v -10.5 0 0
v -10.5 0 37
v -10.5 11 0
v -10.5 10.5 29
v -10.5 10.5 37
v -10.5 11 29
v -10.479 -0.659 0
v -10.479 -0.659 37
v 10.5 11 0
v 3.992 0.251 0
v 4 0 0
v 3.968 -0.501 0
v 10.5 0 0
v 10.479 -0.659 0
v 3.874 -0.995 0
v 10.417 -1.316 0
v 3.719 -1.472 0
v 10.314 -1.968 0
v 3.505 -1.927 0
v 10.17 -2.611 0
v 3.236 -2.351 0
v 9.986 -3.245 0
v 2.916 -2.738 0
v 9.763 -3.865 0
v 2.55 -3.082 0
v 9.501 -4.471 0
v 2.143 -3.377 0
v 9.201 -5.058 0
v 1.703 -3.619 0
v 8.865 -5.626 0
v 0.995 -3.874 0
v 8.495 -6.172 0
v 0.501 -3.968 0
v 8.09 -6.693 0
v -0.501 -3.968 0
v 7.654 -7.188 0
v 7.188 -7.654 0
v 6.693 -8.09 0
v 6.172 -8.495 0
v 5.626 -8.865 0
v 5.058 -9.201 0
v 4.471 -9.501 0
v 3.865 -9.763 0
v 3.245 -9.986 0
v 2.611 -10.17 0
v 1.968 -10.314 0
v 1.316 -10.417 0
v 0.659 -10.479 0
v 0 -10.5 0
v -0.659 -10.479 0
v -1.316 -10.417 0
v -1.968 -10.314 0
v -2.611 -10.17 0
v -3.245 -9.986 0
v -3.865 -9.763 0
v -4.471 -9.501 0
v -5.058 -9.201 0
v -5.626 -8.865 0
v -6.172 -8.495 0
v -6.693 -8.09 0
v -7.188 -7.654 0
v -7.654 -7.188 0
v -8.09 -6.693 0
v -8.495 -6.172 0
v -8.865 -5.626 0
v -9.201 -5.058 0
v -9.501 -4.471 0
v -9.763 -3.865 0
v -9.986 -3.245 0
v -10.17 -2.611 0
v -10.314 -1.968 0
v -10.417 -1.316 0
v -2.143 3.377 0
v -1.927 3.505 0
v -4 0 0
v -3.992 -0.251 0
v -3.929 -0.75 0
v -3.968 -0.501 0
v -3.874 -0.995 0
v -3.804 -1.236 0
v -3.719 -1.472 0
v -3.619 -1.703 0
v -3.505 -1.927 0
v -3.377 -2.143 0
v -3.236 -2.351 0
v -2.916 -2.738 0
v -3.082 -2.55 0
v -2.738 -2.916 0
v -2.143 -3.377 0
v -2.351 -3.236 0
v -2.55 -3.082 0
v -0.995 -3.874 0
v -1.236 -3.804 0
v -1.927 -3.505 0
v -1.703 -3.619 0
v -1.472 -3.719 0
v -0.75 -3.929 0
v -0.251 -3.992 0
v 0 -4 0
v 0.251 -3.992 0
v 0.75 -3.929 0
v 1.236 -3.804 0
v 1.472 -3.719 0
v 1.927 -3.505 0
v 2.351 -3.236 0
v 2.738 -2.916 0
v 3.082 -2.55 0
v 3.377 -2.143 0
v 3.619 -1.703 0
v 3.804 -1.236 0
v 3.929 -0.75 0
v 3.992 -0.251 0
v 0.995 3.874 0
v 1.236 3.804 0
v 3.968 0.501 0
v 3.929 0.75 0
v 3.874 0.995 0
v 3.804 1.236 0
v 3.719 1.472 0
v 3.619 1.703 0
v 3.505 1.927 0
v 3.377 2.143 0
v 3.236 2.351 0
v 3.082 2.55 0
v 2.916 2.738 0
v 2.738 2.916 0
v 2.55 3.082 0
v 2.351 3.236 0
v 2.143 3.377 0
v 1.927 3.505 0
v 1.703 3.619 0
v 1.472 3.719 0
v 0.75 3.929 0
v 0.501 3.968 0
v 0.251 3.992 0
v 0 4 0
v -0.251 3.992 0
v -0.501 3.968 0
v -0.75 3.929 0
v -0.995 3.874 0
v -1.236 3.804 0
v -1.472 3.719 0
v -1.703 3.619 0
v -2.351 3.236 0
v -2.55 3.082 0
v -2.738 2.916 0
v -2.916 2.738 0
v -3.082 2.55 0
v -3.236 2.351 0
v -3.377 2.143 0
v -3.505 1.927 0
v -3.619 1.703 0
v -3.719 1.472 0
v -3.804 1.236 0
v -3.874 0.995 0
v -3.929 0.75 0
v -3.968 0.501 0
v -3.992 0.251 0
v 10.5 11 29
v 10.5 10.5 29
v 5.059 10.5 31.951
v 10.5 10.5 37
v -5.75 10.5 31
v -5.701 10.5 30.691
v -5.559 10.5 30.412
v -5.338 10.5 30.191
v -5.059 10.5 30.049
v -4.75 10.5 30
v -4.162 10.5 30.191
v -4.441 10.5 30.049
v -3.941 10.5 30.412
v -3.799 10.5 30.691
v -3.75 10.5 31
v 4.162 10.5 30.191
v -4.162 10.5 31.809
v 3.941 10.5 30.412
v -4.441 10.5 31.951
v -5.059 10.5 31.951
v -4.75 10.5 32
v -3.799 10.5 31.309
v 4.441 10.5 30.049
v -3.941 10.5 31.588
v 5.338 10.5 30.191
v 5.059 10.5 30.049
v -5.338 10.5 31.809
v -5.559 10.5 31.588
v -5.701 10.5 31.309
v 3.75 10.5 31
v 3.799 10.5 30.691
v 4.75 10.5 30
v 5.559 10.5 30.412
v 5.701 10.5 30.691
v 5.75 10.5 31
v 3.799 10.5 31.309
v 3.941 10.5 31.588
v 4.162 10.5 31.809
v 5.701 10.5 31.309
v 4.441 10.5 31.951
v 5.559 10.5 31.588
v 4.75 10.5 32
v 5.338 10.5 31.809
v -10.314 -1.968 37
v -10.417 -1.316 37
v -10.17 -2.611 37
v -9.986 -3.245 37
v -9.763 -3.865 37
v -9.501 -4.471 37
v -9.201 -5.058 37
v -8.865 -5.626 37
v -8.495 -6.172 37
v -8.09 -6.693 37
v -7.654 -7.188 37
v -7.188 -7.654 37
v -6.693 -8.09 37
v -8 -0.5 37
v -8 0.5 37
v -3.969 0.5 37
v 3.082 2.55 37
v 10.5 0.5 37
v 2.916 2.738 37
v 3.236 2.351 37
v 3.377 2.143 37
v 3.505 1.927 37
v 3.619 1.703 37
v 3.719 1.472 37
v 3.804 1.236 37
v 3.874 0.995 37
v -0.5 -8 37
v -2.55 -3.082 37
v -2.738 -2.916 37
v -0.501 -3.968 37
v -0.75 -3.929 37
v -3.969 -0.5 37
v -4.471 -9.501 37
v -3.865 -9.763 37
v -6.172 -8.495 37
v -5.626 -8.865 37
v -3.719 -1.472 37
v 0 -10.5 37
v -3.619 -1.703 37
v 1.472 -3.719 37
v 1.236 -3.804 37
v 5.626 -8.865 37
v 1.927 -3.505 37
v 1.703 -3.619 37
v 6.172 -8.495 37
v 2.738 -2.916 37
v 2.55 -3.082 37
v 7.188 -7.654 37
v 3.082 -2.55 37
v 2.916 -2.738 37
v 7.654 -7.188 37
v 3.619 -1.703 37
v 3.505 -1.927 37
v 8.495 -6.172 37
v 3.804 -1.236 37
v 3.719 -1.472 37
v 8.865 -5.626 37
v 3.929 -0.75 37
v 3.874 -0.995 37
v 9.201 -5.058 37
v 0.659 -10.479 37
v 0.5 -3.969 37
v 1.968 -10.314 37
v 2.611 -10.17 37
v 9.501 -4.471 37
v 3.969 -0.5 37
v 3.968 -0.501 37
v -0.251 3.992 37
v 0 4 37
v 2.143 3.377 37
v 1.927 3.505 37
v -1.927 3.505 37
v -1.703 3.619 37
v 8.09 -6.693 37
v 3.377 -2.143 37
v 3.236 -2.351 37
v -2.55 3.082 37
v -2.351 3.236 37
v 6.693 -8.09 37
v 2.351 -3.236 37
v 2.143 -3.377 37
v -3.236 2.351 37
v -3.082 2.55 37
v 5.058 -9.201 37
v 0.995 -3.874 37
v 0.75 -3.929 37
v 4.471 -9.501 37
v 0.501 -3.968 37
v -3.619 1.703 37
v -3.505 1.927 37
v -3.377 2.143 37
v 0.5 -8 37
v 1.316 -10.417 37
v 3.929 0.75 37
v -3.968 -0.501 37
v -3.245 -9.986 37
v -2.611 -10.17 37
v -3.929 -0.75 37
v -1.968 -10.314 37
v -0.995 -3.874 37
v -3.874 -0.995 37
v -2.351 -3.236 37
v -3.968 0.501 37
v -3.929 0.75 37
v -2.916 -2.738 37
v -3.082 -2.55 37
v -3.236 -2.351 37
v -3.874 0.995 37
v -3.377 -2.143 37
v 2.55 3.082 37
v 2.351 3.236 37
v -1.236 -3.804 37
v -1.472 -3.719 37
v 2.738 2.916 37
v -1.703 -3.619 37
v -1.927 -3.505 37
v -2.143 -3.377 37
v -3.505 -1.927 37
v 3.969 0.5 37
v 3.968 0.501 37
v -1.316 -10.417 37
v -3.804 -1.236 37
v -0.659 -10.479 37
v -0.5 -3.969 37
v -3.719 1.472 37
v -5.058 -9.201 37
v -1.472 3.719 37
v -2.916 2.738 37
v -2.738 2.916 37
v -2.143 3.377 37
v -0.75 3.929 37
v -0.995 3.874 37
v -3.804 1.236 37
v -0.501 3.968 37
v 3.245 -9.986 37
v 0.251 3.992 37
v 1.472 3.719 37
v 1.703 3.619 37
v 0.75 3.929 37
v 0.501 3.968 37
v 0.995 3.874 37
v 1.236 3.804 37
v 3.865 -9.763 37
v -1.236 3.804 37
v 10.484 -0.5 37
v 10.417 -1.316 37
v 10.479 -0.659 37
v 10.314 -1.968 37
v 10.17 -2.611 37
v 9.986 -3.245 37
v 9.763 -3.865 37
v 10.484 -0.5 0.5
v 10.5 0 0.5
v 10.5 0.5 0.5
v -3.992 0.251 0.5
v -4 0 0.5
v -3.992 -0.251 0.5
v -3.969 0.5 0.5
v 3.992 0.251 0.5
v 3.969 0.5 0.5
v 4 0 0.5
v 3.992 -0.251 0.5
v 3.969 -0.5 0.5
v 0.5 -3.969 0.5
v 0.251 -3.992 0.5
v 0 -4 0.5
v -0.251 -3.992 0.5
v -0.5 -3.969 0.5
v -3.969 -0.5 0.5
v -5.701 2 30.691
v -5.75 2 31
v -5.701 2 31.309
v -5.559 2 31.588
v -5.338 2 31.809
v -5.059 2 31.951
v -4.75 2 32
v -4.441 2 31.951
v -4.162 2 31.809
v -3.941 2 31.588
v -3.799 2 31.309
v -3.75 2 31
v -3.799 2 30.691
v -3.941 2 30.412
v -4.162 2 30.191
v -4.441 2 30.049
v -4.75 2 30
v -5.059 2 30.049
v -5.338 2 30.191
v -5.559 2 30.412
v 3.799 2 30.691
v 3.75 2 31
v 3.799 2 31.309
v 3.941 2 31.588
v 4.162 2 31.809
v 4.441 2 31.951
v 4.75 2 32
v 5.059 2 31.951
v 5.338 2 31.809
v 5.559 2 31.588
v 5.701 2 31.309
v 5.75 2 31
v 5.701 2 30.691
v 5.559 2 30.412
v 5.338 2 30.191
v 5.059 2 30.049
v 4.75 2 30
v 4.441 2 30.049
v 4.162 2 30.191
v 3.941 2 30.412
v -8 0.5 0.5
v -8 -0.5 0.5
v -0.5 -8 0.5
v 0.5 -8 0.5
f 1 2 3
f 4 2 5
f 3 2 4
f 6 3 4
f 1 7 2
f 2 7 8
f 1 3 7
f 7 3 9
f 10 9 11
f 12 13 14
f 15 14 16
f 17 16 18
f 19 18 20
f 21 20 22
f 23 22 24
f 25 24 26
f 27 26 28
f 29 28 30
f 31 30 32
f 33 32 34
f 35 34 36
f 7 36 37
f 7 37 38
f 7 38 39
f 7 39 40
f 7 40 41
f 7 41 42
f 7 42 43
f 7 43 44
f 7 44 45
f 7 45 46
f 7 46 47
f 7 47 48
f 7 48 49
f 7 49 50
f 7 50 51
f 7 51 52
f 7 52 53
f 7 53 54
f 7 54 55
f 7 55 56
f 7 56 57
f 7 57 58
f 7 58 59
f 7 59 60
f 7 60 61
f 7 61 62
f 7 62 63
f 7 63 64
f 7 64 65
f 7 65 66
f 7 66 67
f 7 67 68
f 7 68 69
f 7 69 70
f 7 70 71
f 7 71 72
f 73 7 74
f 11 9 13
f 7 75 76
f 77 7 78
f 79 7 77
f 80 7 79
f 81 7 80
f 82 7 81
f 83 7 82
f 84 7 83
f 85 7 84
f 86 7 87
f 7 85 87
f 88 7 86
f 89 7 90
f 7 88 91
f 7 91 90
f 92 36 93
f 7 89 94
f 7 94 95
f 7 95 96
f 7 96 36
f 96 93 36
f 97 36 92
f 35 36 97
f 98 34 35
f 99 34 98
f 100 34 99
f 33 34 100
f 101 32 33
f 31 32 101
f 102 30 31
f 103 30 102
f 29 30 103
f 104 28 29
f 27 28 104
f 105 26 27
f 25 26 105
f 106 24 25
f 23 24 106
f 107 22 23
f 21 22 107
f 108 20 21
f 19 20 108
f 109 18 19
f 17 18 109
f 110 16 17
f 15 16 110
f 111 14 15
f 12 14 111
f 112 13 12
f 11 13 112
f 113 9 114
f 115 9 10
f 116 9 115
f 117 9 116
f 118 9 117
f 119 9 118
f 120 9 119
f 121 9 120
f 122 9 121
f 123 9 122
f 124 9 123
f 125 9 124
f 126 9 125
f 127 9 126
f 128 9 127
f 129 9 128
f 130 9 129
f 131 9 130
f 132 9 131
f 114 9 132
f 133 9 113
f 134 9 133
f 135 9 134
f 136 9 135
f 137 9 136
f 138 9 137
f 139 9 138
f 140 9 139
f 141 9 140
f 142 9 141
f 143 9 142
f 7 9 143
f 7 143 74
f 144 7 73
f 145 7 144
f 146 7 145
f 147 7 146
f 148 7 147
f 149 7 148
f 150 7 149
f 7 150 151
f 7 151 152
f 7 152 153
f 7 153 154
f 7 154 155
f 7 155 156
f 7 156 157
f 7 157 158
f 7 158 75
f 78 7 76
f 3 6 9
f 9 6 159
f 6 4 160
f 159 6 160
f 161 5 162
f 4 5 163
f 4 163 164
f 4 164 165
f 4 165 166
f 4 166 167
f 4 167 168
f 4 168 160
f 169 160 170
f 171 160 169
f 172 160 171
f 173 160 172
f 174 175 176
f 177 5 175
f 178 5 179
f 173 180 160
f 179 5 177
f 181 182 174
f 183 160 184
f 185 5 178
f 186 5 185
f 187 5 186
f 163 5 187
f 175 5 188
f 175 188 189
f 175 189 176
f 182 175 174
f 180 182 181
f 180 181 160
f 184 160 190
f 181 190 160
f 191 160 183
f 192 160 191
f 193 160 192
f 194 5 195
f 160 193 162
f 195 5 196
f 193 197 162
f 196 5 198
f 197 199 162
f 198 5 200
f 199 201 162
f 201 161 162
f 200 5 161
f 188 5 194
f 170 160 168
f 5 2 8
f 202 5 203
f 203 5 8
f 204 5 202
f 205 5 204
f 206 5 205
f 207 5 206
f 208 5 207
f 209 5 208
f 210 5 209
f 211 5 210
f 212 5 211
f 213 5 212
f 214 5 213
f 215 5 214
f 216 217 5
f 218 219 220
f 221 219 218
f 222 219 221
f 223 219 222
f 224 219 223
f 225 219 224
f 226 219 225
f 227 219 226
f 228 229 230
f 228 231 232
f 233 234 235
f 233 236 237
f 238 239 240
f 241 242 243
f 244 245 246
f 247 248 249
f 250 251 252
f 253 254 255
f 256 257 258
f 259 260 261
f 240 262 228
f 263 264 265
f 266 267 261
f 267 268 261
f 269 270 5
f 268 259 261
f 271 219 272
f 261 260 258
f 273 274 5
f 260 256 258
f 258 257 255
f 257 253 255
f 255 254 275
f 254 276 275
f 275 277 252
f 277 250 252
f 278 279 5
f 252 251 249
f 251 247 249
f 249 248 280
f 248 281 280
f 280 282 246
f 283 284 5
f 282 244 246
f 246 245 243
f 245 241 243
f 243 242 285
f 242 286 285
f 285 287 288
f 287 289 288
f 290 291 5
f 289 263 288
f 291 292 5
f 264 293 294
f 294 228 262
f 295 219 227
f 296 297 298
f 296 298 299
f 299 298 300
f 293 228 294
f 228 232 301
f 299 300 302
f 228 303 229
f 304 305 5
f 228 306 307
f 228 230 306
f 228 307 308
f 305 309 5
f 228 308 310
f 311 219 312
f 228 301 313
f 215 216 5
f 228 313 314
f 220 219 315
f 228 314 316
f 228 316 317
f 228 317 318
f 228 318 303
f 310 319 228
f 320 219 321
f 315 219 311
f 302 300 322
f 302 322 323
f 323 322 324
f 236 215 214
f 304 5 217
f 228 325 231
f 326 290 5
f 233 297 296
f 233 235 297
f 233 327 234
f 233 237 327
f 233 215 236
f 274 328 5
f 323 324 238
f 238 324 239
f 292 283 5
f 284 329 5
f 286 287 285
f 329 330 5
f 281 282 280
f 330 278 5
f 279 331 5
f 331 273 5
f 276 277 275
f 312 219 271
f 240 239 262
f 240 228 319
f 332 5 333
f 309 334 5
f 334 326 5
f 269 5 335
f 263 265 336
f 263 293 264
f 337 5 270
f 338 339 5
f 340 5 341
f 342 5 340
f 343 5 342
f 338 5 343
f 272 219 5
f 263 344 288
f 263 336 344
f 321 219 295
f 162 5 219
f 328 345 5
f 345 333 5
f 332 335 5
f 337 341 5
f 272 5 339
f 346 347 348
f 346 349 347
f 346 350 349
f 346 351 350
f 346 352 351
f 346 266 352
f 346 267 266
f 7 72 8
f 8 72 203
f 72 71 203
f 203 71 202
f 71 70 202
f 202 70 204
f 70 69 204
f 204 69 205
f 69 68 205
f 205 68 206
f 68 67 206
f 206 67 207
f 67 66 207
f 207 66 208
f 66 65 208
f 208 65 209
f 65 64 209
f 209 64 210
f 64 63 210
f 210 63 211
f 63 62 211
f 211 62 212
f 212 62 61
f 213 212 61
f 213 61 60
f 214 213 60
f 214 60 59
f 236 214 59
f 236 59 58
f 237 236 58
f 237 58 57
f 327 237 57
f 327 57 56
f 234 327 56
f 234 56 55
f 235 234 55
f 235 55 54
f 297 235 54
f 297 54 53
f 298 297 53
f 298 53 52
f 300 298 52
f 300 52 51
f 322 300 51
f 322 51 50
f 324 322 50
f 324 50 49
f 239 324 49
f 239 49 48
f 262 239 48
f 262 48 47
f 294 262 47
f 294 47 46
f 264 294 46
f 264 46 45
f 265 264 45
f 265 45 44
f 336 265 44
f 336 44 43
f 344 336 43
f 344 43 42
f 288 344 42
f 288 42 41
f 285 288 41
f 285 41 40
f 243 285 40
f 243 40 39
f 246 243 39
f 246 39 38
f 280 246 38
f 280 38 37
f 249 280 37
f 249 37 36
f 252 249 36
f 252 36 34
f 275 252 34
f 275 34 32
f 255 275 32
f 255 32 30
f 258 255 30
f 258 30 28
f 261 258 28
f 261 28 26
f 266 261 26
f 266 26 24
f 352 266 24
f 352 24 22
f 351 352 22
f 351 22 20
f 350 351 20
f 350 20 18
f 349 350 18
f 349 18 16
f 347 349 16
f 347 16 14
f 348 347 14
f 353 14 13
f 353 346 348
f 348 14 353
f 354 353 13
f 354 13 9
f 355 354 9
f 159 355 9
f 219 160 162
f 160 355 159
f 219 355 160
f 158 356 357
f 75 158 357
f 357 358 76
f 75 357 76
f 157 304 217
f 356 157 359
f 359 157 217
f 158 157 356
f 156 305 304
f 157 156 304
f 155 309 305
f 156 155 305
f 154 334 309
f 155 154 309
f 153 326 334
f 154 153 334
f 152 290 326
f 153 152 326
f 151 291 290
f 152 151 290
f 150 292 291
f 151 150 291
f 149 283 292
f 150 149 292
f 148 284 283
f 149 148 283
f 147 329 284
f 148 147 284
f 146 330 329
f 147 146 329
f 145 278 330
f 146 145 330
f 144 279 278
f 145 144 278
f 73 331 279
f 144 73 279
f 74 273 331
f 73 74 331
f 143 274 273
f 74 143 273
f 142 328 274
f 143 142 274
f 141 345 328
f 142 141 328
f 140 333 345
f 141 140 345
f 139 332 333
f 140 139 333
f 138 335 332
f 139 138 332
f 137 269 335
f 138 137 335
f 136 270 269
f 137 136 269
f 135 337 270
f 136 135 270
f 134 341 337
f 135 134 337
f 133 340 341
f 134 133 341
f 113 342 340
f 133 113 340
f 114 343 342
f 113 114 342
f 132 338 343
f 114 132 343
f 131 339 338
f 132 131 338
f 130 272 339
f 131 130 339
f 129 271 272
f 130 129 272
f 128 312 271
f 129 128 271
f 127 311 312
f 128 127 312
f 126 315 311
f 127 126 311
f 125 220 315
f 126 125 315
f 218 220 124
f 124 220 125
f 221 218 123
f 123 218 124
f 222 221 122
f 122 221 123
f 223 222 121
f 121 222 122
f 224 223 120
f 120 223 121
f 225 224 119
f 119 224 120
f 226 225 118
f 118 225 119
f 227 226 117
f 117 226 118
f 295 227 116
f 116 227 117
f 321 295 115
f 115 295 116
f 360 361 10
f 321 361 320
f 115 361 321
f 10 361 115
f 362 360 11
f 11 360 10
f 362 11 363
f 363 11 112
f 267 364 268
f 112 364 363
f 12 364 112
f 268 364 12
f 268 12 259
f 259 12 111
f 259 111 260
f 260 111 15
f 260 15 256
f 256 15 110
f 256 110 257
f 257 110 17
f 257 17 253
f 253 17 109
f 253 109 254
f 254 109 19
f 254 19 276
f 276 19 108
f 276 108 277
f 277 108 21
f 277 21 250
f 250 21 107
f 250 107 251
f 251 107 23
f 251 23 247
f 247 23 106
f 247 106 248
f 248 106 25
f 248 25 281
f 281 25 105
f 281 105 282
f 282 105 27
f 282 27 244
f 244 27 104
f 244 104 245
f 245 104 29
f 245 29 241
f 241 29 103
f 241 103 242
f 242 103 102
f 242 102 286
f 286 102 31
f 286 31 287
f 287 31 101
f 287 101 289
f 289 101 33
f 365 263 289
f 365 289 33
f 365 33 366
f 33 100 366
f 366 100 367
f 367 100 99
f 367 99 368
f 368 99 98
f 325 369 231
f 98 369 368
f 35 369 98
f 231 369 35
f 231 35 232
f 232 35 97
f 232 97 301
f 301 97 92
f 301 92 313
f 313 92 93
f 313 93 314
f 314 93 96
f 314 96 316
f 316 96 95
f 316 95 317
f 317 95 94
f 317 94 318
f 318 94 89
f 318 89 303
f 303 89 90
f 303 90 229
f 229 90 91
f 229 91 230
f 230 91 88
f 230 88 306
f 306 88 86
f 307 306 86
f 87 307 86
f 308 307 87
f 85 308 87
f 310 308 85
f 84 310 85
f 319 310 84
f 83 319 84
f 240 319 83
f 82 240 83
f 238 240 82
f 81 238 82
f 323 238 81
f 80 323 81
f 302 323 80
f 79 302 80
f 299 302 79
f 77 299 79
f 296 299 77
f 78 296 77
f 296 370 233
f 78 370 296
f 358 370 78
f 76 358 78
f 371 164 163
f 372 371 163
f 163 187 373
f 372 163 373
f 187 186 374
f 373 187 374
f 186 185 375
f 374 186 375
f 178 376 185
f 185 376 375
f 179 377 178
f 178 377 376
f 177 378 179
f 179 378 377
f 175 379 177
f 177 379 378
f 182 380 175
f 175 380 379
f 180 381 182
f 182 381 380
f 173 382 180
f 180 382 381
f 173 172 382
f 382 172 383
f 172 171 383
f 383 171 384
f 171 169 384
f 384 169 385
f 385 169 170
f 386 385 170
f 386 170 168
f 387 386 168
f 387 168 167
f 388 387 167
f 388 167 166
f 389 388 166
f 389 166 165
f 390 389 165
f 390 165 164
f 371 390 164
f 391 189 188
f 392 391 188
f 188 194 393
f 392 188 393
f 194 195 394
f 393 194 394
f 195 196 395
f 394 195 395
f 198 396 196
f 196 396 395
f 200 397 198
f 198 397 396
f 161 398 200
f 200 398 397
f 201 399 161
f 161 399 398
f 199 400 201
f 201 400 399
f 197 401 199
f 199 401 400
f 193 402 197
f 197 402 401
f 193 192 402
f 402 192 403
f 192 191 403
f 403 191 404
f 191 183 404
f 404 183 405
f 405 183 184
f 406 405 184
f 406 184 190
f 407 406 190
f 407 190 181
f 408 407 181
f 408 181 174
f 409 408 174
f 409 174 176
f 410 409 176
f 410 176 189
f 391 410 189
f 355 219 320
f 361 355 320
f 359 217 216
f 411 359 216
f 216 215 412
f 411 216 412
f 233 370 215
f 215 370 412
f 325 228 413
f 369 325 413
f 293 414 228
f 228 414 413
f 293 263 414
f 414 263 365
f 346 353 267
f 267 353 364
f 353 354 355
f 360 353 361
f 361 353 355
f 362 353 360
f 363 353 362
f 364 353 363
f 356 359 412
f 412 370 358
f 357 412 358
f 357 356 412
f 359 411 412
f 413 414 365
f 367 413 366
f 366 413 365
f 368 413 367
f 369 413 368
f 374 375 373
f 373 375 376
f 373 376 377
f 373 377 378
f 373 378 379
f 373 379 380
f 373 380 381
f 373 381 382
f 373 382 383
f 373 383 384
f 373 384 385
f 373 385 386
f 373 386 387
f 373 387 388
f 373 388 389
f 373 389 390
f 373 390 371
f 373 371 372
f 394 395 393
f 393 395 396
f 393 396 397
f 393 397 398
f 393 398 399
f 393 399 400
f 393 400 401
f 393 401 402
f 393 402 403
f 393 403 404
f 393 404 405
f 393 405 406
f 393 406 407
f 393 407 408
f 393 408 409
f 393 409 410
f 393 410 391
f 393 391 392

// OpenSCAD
height = 37;

difference(){
union(){
cylinder(r=10.5, h=height, $fn=100);
translate([-10.5,0,0])cube([21,10.5,height]);
translate([-10.5,0,0])cube([21,11,height-8]);
}
translate([0,-0.5,0.5])cube([20,1,45]);
rotate([0,0,-90]) translate([0,-0.5,0.5])cube([8,1,45]);
rotate([0,0,-180]) translate([0,-0.5,0.5])cube([8,1,45]);
translate([0,0,-1])cylinder(r=4, h=42, $fn=100);
translate([4.75,2,height-6]) rotate([-90,0,0])cylinder(r=1, h=100,$fn=20);
translate([-4.75,2,height-6]) rotate([-90,0,0])cylinder(r=1, h=100,$fn=20);
}
